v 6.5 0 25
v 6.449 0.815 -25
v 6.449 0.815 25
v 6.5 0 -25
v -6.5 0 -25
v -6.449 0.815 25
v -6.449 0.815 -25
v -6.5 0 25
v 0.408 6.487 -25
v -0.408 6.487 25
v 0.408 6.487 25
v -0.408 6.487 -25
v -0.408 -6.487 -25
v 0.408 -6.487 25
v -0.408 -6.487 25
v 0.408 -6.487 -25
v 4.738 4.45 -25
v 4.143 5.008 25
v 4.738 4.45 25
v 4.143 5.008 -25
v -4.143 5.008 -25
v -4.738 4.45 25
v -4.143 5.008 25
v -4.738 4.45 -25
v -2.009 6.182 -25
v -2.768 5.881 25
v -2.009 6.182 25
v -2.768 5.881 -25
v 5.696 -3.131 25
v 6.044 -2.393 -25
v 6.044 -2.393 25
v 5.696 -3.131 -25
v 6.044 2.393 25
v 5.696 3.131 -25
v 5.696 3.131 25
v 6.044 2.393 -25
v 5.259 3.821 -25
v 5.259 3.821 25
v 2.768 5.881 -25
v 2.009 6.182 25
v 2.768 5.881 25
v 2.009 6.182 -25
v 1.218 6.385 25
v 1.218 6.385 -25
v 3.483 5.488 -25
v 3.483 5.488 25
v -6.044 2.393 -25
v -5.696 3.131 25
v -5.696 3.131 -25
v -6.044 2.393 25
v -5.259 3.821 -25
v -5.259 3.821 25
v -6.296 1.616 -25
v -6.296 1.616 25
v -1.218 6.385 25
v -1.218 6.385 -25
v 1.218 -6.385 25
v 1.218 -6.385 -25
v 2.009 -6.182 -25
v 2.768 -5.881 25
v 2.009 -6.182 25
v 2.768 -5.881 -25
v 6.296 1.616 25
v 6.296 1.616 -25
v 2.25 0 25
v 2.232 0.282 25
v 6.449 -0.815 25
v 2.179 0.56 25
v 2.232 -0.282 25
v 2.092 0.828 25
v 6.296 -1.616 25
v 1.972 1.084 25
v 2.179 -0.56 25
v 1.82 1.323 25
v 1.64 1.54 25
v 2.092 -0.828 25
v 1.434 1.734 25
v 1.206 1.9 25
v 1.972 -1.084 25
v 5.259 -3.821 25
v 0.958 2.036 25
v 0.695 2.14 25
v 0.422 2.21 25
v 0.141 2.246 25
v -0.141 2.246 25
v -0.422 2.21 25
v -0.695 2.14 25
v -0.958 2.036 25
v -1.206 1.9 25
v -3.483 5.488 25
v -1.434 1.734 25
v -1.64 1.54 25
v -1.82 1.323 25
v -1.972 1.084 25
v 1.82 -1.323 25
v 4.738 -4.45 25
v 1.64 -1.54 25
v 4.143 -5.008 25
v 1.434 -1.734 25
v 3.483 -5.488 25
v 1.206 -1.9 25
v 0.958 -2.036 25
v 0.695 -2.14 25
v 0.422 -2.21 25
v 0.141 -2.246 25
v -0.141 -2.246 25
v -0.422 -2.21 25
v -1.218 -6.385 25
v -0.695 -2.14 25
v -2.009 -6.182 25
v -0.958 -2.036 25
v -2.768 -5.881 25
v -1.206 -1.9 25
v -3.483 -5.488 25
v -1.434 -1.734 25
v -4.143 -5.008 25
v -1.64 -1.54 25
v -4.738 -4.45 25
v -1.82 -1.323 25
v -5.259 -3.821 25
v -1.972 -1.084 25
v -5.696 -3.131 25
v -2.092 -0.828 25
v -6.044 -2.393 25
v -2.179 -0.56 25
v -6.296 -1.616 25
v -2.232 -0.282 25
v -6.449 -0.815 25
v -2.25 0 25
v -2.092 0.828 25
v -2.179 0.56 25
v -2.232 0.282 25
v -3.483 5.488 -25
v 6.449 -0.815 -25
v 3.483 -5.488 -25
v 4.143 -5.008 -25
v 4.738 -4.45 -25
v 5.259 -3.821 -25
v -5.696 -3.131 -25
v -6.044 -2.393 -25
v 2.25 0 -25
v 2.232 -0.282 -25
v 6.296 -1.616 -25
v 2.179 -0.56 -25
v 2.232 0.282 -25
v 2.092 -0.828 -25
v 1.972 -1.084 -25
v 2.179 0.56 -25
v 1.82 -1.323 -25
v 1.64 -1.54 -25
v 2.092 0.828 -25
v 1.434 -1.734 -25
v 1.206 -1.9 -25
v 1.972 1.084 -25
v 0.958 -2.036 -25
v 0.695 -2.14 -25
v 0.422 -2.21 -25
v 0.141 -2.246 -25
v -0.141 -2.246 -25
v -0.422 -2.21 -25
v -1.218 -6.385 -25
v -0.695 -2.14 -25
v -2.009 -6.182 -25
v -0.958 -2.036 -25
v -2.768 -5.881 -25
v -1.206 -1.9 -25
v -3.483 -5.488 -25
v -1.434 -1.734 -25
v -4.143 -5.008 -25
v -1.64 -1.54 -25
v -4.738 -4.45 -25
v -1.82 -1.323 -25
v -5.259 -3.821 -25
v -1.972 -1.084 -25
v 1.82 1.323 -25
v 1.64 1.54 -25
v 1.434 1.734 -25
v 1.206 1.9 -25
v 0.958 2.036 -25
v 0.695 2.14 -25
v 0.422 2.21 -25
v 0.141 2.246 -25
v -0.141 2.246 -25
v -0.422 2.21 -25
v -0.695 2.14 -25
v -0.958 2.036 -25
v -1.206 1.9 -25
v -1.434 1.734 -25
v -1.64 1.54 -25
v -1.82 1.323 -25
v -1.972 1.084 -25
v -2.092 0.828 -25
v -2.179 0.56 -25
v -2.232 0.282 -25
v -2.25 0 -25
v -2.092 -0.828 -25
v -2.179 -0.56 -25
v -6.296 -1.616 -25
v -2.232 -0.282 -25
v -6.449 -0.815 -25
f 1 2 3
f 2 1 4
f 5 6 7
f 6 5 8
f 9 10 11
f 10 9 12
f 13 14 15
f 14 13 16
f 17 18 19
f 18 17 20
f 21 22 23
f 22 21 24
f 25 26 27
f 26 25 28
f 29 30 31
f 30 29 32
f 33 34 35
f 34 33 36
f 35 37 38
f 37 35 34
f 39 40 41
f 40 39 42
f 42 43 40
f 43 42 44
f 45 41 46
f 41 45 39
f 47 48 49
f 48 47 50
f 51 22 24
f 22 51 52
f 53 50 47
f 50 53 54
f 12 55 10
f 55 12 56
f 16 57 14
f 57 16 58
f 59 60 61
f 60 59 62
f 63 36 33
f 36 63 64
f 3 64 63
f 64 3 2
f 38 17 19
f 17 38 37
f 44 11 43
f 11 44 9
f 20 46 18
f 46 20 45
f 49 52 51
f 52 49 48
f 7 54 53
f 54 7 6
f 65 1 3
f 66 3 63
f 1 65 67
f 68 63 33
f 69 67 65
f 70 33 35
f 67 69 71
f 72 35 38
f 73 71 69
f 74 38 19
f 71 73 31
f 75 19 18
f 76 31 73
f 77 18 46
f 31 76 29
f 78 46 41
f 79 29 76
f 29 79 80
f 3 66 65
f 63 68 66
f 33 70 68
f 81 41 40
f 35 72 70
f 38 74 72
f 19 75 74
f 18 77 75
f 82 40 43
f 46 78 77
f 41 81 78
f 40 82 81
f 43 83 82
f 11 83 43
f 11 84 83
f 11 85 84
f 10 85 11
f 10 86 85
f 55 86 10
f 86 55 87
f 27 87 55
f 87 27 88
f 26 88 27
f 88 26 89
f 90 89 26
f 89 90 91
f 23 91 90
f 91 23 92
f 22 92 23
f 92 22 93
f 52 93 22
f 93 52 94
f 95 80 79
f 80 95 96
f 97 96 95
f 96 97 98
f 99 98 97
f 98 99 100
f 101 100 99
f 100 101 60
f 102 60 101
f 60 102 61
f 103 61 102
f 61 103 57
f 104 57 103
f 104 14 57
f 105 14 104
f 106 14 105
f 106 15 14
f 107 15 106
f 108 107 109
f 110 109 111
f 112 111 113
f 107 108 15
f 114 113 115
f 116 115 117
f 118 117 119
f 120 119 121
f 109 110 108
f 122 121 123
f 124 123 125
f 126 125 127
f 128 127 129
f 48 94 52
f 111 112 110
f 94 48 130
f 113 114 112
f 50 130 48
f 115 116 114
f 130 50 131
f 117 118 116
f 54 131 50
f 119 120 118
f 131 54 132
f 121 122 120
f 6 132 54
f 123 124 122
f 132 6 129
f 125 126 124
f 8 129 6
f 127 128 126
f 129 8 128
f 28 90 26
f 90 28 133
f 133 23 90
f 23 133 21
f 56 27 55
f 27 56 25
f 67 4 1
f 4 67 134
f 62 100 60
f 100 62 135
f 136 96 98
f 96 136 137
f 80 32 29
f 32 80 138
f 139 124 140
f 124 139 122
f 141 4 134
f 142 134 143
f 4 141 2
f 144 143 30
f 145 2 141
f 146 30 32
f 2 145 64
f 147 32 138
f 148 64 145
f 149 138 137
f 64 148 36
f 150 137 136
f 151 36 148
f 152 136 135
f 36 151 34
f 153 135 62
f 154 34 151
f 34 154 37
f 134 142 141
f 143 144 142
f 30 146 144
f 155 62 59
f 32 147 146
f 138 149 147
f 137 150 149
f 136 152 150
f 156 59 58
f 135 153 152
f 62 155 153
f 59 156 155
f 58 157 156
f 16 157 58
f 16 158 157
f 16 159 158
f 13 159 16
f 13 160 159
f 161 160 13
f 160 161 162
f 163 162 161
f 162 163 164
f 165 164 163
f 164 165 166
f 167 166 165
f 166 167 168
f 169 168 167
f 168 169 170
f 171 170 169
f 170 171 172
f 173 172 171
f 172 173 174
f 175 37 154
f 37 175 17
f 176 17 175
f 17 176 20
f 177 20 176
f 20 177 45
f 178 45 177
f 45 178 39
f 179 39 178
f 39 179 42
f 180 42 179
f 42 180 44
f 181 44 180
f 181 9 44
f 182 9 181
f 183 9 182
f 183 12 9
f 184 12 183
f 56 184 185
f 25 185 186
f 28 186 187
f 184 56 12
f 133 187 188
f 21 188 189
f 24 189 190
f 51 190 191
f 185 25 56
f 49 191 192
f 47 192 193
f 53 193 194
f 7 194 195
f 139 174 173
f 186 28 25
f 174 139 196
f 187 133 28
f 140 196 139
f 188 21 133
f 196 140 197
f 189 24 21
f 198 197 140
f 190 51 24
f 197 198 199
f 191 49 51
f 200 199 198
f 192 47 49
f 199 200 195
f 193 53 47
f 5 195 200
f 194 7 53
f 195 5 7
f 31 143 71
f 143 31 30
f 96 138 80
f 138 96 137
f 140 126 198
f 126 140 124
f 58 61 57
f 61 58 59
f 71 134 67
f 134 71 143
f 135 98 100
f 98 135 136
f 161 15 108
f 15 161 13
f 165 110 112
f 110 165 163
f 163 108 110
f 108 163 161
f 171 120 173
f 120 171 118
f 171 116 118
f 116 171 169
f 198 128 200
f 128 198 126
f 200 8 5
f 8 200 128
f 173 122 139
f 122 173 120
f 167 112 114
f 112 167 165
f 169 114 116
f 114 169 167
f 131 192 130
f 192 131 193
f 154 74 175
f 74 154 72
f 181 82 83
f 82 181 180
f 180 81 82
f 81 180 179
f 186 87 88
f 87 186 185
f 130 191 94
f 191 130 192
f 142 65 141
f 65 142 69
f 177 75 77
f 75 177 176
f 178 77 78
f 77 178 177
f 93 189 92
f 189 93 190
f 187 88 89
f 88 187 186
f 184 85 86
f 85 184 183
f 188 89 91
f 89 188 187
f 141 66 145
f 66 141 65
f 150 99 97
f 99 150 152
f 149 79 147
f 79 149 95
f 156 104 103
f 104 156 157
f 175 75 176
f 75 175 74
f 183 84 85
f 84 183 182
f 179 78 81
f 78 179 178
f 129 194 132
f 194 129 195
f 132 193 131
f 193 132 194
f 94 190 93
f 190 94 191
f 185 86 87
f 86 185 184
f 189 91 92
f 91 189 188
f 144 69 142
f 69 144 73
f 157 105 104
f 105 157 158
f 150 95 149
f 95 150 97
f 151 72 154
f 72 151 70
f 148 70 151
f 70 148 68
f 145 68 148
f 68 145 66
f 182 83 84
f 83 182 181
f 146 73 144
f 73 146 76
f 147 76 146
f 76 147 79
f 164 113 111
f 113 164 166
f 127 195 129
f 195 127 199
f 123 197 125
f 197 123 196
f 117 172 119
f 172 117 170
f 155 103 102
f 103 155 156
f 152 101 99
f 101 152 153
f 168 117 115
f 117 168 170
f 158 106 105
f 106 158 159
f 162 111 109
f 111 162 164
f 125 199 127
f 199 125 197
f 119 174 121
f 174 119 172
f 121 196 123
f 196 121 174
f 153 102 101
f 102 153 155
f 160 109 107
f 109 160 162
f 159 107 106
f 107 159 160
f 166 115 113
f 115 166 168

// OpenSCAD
$fn = 50;


difference() {
	union() {
		translate(v = [0, 0, -25.0000000000]) {
			cylinder(h = 50, r = 6.5000000000);
		}
	}
	union() {
		translate(v = [0, 0, -100.0000000000]) {
			cylinder(h = 200, r = 2.2500000000);
		}
	}
}
